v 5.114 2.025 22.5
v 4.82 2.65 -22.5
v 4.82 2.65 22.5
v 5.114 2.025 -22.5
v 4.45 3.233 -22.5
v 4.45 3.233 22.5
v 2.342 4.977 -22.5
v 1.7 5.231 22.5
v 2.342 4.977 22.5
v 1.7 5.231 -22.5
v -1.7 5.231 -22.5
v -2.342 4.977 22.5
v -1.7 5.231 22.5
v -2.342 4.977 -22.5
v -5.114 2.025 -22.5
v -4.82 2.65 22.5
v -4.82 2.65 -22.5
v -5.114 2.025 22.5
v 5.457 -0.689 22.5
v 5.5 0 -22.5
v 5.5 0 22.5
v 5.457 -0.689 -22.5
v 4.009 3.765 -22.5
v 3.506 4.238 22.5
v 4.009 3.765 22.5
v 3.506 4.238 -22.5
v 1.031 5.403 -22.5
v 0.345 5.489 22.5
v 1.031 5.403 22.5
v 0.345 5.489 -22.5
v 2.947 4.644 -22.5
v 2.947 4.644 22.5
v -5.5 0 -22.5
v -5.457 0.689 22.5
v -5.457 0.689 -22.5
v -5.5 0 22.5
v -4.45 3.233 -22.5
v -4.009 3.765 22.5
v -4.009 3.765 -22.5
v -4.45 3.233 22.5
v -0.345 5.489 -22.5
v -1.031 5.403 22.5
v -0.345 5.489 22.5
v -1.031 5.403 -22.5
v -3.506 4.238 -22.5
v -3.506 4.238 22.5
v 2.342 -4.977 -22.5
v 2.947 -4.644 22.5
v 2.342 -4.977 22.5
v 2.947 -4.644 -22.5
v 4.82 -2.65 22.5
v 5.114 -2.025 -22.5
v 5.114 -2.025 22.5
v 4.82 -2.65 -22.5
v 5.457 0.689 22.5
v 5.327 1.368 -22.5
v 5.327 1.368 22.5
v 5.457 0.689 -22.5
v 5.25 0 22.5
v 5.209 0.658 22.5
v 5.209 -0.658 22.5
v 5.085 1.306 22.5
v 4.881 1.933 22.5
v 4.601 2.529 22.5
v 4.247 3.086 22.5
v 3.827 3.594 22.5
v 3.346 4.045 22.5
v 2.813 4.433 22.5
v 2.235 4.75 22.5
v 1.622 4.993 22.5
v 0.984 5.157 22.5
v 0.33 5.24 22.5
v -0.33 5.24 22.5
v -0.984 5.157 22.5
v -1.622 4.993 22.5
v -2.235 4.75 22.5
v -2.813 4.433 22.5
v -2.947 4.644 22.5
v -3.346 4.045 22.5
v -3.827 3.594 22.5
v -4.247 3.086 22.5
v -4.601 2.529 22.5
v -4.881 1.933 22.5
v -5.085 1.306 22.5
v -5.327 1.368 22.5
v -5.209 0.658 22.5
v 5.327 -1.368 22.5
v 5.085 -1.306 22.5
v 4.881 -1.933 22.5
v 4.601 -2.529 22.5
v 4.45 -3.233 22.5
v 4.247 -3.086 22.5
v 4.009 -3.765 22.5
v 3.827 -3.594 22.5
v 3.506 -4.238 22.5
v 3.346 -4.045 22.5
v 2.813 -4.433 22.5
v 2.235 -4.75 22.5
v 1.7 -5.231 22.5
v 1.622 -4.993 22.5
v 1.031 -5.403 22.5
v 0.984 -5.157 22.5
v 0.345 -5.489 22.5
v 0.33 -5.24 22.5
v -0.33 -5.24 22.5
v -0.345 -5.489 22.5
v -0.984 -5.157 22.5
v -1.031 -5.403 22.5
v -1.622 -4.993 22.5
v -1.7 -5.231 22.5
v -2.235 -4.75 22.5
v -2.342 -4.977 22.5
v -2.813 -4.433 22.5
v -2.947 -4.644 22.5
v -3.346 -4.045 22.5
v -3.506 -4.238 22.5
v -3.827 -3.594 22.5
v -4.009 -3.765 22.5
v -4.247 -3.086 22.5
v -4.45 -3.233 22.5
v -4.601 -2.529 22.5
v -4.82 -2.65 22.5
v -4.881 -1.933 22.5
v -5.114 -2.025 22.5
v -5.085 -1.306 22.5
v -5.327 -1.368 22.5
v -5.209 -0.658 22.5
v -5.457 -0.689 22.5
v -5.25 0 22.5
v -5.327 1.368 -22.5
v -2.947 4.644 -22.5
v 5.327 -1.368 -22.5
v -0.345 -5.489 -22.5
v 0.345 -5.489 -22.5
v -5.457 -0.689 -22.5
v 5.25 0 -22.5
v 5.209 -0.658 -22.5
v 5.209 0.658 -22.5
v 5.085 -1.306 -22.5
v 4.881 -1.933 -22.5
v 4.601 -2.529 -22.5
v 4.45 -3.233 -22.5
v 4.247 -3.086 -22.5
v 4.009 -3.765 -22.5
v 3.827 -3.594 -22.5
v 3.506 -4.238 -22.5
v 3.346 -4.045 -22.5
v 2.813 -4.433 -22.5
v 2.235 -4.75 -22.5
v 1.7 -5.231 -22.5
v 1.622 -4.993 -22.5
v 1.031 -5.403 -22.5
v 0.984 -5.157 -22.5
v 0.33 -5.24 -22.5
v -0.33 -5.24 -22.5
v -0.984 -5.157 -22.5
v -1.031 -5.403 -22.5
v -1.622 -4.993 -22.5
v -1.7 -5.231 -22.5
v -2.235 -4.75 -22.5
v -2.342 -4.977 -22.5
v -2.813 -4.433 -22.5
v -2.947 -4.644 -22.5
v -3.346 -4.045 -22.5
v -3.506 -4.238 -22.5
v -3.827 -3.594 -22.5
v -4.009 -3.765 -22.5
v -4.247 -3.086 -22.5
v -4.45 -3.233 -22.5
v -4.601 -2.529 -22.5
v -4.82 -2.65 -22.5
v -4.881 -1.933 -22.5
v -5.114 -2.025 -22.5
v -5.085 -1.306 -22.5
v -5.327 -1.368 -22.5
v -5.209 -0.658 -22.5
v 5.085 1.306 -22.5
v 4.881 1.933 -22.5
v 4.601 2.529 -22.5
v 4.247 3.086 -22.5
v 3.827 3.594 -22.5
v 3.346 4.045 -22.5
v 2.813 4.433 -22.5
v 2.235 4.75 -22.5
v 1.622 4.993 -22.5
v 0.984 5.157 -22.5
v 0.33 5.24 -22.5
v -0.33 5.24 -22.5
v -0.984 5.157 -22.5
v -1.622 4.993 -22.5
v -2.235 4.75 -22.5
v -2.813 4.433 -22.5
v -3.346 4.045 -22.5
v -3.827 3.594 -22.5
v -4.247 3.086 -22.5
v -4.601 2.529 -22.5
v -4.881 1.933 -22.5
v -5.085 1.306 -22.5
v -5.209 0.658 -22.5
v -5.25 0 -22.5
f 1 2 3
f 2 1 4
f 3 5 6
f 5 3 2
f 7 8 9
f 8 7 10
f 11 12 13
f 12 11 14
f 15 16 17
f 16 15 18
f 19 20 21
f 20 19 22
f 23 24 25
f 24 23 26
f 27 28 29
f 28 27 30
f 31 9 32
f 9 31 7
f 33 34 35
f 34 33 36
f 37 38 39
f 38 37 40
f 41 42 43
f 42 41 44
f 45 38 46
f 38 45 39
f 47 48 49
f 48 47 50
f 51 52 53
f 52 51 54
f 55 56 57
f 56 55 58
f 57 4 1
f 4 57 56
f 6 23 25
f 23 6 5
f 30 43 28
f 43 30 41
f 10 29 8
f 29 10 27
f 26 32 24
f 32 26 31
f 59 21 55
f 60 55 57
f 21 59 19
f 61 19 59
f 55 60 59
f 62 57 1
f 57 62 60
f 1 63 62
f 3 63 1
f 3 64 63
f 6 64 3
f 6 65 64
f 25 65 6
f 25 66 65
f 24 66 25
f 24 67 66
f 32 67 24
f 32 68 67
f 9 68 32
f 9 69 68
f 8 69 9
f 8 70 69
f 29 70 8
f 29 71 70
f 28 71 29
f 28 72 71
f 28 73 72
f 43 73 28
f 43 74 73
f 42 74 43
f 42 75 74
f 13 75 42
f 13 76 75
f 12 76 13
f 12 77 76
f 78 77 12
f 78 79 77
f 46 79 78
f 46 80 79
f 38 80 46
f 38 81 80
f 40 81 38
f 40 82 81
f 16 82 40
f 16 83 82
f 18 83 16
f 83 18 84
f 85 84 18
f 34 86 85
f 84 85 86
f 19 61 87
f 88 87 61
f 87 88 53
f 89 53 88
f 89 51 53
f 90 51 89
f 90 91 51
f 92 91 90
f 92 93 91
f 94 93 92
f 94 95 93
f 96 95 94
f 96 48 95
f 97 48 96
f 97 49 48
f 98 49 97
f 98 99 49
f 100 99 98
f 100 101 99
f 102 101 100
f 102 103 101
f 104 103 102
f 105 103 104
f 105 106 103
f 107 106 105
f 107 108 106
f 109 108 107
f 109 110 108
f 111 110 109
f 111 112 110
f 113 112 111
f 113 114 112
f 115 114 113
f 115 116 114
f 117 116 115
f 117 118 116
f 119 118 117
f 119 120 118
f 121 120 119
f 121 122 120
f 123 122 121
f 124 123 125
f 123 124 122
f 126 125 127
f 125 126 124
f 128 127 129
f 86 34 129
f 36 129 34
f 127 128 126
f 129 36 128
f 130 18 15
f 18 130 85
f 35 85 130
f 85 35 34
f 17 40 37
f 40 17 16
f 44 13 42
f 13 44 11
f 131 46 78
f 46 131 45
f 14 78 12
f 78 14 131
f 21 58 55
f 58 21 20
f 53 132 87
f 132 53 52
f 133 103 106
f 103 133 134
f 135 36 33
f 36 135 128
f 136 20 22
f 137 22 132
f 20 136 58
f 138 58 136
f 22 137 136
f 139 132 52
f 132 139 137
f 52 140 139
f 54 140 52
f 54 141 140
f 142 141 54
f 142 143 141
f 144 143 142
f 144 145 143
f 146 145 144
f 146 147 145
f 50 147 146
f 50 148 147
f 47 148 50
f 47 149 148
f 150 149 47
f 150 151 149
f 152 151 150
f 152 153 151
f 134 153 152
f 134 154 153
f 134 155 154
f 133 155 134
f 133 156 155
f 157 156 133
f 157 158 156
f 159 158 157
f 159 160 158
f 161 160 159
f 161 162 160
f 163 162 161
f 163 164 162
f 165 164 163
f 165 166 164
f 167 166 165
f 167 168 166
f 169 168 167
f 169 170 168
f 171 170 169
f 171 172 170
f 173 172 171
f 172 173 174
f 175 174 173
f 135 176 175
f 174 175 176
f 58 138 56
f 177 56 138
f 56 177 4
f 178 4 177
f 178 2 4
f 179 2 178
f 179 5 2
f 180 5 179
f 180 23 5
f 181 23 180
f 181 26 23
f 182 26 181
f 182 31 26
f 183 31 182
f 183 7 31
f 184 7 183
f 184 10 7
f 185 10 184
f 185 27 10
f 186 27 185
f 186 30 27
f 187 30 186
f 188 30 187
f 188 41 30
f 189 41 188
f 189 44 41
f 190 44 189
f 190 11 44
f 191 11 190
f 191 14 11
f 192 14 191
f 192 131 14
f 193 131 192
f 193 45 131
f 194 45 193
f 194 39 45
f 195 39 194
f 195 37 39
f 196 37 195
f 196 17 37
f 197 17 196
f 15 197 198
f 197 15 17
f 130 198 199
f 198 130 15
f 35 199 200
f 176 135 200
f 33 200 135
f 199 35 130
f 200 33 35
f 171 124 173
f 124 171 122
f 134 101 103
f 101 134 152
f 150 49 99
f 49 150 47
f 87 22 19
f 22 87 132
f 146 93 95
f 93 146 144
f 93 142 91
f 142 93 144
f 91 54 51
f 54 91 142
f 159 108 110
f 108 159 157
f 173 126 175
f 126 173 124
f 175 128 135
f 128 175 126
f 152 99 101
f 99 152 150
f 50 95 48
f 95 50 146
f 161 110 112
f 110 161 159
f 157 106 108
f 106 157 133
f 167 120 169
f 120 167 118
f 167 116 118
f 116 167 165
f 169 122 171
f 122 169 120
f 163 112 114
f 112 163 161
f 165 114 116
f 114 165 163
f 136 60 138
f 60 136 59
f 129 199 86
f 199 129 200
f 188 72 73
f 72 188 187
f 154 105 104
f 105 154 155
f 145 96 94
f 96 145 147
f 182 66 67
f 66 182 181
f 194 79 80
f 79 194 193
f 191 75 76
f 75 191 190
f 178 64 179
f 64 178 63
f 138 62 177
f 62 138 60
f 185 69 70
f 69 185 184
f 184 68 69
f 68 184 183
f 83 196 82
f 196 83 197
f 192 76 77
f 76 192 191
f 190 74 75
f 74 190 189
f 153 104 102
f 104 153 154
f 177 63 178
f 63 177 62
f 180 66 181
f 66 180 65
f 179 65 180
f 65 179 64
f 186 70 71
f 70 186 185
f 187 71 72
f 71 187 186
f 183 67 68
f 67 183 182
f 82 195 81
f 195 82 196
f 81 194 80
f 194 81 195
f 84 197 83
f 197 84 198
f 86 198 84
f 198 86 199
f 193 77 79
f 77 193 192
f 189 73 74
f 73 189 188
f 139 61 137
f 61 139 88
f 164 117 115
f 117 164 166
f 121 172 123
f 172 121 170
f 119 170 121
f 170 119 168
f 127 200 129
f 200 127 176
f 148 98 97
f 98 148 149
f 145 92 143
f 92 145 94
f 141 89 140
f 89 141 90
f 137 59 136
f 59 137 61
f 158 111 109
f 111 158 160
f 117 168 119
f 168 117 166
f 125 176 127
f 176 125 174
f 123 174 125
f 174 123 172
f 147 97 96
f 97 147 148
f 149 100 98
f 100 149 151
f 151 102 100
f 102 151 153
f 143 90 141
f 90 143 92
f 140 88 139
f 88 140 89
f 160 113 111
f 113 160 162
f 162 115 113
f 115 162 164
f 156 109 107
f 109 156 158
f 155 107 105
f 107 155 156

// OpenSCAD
$fn = 50;


difference() {
	union() {
		translate(v = [0, 0, -22.5000000000]) {
			cylinder(h = 45, r = 5.5000000000);
		}
	}
	union() {
		translate(v = [0, 0, -100.0000000000]) {
			cylinder(h = 200, r = 5.2500000000);
		}
	}
}
